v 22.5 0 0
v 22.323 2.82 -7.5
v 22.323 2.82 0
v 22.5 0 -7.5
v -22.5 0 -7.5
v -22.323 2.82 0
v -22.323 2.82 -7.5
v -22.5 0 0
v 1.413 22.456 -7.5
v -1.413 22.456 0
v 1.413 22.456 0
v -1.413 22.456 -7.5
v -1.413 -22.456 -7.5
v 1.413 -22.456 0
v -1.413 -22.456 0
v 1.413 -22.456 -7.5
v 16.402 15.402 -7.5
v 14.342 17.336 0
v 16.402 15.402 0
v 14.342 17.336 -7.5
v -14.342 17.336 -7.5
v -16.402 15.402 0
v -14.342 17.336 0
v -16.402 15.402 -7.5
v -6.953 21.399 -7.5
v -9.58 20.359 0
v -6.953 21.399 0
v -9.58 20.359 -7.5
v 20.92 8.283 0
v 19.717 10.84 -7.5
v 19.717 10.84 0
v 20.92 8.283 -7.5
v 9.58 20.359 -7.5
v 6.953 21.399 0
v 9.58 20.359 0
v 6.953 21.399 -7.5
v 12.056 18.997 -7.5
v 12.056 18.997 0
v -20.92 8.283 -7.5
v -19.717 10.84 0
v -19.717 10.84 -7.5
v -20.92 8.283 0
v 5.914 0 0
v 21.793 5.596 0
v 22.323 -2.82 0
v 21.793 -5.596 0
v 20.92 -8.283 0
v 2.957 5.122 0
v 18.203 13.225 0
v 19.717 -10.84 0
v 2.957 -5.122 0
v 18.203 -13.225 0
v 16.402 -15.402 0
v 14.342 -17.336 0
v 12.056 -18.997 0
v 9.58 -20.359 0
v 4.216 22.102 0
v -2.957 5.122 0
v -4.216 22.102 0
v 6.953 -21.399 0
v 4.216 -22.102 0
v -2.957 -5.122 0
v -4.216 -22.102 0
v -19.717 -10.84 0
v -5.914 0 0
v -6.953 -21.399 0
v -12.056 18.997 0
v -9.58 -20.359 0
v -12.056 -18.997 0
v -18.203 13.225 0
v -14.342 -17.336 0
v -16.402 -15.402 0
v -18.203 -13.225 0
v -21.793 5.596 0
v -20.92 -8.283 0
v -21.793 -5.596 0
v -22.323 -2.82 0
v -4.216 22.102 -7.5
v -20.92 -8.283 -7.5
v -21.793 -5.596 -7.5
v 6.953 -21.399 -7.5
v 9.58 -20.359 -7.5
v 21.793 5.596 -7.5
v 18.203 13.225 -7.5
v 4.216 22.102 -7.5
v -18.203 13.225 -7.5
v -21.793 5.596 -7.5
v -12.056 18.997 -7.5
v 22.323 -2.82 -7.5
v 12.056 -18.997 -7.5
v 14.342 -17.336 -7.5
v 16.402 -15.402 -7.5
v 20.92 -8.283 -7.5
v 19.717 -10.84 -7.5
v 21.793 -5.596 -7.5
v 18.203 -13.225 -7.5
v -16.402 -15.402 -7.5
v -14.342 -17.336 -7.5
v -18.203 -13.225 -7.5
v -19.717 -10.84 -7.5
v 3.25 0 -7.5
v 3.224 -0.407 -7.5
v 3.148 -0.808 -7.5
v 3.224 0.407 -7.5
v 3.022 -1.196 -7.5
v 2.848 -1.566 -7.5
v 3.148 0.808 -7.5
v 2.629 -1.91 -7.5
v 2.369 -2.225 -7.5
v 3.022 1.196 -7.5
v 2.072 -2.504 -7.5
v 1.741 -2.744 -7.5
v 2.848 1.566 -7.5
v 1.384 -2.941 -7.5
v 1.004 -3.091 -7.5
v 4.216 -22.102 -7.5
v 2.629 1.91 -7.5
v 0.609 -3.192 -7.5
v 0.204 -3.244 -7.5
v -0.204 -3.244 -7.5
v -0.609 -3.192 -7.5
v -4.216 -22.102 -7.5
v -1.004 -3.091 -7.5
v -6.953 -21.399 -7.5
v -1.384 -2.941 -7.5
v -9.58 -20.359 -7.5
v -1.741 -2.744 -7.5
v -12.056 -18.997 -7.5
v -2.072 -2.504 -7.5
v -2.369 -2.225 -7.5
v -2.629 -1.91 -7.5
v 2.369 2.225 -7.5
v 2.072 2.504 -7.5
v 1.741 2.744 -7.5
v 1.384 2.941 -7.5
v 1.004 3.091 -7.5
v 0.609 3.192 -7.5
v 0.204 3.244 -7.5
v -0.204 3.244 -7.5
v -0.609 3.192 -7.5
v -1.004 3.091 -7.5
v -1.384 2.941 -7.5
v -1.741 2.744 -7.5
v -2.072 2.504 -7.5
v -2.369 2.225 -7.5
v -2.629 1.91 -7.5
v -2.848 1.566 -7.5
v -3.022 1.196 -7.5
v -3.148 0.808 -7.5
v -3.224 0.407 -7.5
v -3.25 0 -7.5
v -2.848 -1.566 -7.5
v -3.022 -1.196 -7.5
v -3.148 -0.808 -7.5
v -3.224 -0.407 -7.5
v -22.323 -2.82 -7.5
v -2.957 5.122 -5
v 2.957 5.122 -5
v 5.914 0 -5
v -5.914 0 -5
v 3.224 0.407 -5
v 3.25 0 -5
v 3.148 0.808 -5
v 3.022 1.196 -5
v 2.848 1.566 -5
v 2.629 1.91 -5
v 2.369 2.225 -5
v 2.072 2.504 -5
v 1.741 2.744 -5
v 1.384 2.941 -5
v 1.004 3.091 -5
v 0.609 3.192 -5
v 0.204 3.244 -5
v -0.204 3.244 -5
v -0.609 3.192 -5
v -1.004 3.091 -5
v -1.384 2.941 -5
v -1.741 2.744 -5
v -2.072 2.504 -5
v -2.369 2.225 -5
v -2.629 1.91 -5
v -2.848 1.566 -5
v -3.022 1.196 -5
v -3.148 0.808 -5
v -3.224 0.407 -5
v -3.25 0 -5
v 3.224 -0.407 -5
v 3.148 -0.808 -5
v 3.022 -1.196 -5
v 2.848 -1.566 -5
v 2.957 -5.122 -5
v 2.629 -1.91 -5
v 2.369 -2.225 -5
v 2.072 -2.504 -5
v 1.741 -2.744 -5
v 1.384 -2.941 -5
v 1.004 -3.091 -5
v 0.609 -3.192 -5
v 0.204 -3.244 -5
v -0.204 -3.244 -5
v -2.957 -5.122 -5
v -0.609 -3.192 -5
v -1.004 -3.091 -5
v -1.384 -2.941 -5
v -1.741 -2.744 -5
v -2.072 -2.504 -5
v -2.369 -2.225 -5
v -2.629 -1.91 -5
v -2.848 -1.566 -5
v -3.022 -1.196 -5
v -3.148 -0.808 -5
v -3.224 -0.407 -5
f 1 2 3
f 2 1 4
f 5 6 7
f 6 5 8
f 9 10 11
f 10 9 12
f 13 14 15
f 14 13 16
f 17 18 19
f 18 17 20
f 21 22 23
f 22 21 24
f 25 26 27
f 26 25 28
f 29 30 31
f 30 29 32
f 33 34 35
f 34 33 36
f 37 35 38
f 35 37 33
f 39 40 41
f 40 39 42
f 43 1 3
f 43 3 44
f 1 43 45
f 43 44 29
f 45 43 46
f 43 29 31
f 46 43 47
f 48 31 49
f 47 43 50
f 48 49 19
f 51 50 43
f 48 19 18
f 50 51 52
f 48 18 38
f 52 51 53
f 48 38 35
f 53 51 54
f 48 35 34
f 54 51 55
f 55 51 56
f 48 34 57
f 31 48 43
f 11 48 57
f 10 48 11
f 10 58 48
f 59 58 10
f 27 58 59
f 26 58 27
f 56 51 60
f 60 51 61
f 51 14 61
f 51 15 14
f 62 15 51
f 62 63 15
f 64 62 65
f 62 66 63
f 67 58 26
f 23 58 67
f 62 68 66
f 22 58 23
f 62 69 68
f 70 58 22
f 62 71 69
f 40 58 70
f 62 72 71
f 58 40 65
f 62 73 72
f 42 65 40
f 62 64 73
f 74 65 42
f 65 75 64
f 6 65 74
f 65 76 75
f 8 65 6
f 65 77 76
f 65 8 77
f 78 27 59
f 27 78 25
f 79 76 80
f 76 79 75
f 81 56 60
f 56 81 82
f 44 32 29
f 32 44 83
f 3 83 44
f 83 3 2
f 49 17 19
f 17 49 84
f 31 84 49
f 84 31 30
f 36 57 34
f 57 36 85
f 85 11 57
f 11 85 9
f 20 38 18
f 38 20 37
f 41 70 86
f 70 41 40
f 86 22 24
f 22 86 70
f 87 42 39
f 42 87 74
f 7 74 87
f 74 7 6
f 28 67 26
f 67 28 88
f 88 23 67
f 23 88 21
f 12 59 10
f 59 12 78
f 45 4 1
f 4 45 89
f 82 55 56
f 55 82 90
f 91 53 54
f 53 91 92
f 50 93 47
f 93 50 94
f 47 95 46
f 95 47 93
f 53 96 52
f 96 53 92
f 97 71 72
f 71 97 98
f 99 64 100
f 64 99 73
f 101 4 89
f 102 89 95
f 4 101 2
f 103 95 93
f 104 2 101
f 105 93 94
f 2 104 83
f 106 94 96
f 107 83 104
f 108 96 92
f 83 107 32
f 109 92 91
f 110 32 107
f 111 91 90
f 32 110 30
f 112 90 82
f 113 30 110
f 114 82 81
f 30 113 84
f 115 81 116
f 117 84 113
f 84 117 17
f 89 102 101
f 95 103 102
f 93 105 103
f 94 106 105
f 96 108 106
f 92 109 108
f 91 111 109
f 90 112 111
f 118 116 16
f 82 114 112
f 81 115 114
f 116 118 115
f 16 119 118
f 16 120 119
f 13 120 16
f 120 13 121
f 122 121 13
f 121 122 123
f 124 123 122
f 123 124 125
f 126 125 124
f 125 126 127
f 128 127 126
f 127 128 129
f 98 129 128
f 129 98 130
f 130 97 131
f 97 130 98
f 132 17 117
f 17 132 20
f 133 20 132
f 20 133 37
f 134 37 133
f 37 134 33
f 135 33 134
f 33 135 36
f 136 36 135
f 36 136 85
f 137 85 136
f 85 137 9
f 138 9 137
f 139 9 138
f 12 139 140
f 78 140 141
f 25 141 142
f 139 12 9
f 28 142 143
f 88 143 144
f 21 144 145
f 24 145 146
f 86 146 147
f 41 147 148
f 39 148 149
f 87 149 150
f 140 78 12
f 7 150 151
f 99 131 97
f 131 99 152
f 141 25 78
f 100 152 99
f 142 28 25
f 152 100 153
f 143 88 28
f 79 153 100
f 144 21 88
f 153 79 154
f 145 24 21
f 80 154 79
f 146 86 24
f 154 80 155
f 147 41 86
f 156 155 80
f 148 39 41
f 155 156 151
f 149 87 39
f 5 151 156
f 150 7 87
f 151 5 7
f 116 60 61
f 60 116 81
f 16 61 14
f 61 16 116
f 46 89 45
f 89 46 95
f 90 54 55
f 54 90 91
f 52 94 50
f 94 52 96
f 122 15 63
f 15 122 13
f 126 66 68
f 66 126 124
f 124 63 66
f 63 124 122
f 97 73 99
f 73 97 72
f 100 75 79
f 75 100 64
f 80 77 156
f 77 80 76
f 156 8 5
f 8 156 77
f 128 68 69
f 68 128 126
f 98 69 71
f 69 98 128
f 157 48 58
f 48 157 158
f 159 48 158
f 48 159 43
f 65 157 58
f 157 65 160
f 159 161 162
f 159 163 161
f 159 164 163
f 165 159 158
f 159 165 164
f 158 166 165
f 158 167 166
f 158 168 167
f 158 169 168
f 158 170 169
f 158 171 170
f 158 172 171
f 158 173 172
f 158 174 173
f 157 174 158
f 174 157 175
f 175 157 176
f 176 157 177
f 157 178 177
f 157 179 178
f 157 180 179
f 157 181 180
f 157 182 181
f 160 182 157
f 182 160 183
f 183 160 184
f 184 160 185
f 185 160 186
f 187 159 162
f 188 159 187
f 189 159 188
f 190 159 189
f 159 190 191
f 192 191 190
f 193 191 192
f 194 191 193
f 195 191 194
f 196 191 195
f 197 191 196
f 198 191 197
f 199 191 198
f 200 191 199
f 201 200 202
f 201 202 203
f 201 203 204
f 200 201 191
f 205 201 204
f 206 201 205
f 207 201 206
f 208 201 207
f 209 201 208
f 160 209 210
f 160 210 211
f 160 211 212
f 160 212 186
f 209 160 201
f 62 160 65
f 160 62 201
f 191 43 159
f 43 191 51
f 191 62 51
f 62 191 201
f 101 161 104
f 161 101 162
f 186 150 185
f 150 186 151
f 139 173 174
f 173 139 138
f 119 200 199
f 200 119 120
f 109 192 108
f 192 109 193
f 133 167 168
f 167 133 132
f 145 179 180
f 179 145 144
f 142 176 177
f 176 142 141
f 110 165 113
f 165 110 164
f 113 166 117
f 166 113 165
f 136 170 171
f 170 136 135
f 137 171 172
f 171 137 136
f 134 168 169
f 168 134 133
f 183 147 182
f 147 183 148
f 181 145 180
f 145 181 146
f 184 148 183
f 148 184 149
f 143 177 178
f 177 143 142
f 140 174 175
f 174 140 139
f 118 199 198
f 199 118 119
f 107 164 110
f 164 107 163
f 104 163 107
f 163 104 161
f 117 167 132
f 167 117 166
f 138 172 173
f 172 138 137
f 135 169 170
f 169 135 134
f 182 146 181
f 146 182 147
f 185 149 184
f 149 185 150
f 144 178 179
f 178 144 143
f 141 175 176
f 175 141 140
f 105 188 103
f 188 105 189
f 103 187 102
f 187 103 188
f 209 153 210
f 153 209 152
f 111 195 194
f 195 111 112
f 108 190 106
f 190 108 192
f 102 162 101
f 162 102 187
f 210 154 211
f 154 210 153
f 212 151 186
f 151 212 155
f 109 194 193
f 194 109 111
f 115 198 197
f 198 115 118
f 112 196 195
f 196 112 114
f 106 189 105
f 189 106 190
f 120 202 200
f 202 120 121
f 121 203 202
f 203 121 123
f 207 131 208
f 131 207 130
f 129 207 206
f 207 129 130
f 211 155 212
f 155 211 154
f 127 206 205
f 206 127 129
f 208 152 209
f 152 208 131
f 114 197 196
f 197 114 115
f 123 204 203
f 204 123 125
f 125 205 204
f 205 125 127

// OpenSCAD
$fn = 50;


difference() {
	union() {
		translate(v = [0, 0, -7.5000000000]) {
			cylinder(h = 7.5000000000, r = 22.5000000000);
		}
		translate(v = [0, 0, -9.0000000000]) {
			cylinder(h = 9, r = 2.8750000000);
		}
	}
	union() {
		translate(v = [0, 0, 0]) {
			rotate(a = [0, 0, 0]) {
				difference() {
					union() {
						translate(v = [0, 0, -5]) {
							linear_extrude(height = 5) {
								polygon(points = [[5.9142500000, 0.0000000000], [2.9571250000, 5.1218907443], [-2.9571250000, 5.1218907443], [-5.9142500000, 0.0000000000], [-2.9571250000, -5.1218907443], [2.9571250000, -5.1218907443]]);
							}
						}
					}
					union();
				}
			}
		}
		#translate(v = [0, 0, -100.0000000000]) {
			cylinder(h = 200, r = 3.2500000000);
		}
	}
}
